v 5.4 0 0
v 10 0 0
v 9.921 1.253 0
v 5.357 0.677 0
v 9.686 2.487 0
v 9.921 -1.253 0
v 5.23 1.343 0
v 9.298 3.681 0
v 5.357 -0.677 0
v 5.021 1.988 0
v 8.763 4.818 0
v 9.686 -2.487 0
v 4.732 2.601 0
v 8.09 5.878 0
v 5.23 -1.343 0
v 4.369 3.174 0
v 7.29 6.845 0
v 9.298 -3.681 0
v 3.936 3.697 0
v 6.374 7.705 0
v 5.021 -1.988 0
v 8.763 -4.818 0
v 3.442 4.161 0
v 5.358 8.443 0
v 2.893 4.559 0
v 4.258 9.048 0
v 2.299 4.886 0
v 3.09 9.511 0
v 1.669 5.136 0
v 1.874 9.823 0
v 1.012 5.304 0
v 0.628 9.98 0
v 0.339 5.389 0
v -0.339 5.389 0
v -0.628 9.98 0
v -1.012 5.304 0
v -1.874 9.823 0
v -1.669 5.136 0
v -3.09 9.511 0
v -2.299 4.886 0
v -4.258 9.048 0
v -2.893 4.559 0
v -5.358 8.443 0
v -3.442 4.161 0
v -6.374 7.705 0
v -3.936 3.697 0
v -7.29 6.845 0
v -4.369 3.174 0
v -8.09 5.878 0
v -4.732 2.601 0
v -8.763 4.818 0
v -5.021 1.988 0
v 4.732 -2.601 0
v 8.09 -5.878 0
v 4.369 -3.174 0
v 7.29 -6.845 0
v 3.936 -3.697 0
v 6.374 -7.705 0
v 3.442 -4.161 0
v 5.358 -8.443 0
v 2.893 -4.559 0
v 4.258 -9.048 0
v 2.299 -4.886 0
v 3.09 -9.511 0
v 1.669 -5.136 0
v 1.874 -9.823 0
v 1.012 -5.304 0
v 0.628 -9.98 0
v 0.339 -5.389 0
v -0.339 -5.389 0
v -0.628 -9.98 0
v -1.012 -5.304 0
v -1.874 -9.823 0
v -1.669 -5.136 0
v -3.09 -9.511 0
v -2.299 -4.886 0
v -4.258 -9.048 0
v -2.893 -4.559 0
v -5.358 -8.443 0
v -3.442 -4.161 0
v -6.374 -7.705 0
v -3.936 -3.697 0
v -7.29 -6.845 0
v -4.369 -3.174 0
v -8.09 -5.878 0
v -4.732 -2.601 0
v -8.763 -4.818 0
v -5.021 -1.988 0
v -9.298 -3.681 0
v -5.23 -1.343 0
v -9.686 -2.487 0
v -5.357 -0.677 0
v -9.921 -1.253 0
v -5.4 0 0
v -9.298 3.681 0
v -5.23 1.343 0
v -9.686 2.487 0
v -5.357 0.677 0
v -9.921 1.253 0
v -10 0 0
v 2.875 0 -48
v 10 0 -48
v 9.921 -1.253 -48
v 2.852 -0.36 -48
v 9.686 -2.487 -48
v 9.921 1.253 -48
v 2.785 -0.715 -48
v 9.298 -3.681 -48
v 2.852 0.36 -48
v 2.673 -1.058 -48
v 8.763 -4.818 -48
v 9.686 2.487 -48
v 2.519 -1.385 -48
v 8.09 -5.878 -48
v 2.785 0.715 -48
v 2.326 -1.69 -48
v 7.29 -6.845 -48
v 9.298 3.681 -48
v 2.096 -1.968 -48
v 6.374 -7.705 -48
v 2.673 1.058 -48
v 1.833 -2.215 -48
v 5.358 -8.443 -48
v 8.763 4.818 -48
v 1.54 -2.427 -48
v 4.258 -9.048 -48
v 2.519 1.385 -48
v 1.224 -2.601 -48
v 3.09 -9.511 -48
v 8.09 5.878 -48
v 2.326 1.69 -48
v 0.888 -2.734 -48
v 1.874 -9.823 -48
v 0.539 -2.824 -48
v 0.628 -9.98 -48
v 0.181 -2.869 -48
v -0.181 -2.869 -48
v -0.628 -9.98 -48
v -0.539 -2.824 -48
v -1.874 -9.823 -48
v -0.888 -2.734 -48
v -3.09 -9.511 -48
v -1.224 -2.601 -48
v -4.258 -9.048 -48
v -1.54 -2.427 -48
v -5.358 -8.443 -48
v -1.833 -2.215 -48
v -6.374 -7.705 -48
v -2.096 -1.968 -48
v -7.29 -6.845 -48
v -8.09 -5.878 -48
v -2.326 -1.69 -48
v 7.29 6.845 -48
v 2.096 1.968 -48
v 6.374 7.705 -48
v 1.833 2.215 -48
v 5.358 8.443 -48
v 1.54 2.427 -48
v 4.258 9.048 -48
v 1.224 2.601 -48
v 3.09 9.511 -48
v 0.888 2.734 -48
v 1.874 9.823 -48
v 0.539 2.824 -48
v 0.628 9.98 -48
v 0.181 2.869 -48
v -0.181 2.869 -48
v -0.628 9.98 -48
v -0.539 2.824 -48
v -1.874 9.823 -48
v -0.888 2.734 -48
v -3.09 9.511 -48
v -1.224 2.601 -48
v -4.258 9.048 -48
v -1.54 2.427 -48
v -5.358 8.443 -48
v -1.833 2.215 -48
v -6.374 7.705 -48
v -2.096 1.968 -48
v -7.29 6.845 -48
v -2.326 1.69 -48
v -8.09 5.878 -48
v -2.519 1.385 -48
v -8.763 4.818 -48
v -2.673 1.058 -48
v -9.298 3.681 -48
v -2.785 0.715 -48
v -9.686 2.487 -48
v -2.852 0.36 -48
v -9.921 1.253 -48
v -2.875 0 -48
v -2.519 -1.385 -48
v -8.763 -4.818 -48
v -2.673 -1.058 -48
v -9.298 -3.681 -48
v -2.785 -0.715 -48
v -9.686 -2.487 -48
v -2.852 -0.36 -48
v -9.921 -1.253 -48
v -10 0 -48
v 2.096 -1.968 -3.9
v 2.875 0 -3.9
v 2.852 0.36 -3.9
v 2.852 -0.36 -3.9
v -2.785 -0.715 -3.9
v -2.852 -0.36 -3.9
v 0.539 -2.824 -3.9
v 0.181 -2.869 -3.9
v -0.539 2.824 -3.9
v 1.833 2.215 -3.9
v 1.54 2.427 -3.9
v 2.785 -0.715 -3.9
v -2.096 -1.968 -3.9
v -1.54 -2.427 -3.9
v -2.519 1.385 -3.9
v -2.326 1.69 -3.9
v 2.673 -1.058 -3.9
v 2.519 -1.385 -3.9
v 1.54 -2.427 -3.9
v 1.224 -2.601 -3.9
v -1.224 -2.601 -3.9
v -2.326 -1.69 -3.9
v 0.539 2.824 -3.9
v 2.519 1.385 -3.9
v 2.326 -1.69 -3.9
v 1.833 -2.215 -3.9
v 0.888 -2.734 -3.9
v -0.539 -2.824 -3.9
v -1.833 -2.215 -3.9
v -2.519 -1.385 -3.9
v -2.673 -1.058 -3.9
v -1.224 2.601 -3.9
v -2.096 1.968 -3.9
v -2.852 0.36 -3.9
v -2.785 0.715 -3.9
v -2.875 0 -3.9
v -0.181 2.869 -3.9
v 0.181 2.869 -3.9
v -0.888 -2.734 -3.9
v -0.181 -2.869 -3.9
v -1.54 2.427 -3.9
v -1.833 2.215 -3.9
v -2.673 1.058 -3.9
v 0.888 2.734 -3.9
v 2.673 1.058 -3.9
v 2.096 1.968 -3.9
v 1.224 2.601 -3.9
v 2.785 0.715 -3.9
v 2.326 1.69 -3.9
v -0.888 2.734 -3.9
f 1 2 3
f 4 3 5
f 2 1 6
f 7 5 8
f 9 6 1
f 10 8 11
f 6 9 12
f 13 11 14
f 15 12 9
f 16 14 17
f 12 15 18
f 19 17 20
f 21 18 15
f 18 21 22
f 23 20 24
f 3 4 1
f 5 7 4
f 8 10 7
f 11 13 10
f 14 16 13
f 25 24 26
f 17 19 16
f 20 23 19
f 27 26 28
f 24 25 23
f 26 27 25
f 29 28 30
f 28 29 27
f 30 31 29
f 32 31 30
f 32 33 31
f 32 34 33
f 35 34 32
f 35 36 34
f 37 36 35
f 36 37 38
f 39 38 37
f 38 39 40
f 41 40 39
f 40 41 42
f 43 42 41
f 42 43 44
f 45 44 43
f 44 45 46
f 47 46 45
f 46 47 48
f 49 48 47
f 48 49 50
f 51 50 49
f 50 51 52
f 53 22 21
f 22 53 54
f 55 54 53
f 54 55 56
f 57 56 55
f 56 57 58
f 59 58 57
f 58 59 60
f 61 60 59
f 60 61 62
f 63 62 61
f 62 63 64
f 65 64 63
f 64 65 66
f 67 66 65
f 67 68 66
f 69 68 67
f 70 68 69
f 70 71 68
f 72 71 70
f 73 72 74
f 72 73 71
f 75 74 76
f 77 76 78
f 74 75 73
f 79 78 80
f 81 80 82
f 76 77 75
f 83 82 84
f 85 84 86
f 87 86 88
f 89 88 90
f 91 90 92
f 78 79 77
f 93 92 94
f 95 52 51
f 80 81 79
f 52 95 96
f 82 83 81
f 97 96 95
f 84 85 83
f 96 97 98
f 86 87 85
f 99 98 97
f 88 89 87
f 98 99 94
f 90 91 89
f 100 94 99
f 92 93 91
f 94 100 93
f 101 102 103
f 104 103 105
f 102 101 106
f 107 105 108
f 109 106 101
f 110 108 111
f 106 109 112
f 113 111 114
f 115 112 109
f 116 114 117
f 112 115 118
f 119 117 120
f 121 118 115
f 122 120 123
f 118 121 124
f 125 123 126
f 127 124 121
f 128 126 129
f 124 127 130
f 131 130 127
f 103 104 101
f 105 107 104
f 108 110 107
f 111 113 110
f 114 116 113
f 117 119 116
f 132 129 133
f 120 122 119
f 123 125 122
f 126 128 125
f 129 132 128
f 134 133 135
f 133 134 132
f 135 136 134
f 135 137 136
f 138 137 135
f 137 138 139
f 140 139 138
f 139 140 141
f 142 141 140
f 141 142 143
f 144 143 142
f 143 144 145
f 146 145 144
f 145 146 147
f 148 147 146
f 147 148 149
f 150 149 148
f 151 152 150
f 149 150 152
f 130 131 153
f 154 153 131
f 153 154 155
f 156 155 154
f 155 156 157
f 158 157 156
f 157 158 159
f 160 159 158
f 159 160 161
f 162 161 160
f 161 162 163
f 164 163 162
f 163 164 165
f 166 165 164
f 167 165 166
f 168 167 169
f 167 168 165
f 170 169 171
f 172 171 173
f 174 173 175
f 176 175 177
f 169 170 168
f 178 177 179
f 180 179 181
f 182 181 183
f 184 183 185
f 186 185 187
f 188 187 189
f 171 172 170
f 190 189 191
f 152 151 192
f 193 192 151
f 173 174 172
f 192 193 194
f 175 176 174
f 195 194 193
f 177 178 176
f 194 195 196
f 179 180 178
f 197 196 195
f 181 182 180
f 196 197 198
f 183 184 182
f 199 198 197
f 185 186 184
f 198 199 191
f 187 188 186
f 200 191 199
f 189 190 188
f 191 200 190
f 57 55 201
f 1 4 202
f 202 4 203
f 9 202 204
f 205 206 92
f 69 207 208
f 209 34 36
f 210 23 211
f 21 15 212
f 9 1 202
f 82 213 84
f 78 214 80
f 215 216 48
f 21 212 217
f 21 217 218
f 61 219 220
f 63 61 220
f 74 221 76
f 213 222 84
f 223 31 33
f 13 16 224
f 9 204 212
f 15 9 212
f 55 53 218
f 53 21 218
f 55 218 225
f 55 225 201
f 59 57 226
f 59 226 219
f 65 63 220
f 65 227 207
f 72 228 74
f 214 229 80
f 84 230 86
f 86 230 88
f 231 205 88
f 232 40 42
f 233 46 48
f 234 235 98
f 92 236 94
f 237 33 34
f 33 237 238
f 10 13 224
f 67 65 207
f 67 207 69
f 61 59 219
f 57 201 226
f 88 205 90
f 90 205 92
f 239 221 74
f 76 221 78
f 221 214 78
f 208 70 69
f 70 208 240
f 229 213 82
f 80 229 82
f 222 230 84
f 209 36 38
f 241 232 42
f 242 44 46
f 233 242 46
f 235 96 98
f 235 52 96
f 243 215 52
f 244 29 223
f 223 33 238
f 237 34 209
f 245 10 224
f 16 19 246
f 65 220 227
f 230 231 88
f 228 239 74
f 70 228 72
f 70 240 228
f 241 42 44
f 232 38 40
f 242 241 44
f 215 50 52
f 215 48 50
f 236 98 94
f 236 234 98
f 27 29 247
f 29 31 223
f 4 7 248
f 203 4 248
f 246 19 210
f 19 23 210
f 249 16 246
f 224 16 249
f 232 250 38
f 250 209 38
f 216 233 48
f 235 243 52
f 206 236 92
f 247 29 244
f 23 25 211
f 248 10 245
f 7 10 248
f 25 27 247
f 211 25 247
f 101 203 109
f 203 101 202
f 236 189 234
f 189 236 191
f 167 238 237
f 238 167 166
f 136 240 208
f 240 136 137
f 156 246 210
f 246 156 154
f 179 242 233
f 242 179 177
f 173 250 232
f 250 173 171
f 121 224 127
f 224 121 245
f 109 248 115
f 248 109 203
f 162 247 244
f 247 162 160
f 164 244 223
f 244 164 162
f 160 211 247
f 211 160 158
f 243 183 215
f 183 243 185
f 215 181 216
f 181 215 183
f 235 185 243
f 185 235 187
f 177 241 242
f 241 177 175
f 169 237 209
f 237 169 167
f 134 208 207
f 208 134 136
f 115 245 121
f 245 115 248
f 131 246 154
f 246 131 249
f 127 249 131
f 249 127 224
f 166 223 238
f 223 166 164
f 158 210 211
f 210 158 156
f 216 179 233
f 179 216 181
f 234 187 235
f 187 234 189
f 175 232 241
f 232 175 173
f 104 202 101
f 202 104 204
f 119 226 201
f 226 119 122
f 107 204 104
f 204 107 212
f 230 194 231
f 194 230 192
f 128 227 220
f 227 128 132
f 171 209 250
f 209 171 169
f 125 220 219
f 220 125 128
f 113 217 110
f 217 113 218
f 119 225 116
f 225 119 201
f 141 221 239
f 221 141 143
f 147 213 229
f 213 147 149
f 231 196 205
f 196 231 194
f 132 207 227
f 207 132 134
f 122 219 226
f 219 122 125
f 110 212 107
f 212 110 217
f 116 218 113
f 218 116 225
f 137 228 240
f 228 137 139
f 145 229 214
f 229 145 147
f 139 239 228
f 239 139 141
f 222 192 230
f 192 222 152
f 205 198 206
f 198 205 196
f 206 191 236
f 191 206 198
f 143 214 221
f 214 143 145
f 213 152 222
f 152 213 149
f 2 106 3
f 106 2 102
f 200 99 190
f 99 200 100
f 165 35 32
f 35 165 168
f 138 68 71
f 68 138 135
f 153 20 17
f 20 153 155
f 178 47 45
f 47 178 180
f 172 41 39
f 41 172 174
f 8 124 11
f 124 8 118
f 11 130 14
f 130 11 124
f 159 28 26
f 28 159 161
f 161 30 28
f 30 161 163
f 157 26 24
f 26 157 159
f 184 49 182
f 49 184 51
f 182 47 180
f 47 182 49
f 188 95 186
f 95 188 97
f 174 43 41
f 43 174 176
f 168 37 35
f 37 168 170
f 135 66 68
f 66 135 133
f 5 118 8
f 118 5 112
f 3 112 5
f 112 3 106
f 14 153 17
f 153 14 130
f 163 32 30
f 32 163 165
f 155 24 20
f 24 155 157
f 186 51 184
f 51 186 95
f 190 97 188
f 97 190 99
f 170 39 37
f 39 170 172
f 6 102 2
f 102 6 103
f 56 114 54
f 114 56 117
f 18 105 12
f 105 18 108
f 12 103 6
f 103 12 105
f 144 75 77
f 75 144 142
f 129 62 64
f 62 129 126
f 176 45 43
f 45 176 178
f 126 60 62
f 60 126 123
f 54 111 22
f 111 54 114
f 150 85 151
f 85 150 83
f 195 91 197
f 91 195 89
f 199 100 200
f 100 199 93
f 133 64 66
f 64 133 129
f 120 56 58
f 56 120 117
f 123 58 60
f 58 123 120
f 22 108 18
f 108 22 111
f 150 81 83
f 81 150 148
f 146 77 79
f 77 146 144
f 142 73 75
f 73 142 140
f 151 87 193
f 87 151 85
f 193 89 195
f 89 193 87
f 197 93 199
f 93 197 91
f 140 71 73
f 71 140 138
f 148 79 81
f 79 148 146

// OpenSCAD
$fn = 50;


difference() {
	union() {
		translate(v = [0, 0, -48.0000000000]) {
			cylinder(h = 48, r = 10.0000000000);
		}
		cylinder(h = 0, r = 20.0000000000);
	}
	union() {
		translate(v = [0, 0, 0]) {
			rotate(a = [0, 0, 0]) {
				difference() {
					union() {
						#translate(v = [0, 0, -48.0000000000]) {
							cylinder(h = 48, r = 2.6000000000);
						}
						#translate(v = [0, 0, -3.9000000000]) {
							cylinder(h = 3.9000000000, r = 10.0000000000, r1 = 2.8750000000, r2 = 5.4000000000);
						}
						#translate(v = [0, 0, -48.0000000000]) {
							cylinder(h = 48, r = 2.8750000000);
						}
						#translate(v = [0, 0, -48.0000000000]) {
							cylinder(h = 48, r = 2.6000000000);
						}
					}
					union();
				}
			}
		}
	}
}
